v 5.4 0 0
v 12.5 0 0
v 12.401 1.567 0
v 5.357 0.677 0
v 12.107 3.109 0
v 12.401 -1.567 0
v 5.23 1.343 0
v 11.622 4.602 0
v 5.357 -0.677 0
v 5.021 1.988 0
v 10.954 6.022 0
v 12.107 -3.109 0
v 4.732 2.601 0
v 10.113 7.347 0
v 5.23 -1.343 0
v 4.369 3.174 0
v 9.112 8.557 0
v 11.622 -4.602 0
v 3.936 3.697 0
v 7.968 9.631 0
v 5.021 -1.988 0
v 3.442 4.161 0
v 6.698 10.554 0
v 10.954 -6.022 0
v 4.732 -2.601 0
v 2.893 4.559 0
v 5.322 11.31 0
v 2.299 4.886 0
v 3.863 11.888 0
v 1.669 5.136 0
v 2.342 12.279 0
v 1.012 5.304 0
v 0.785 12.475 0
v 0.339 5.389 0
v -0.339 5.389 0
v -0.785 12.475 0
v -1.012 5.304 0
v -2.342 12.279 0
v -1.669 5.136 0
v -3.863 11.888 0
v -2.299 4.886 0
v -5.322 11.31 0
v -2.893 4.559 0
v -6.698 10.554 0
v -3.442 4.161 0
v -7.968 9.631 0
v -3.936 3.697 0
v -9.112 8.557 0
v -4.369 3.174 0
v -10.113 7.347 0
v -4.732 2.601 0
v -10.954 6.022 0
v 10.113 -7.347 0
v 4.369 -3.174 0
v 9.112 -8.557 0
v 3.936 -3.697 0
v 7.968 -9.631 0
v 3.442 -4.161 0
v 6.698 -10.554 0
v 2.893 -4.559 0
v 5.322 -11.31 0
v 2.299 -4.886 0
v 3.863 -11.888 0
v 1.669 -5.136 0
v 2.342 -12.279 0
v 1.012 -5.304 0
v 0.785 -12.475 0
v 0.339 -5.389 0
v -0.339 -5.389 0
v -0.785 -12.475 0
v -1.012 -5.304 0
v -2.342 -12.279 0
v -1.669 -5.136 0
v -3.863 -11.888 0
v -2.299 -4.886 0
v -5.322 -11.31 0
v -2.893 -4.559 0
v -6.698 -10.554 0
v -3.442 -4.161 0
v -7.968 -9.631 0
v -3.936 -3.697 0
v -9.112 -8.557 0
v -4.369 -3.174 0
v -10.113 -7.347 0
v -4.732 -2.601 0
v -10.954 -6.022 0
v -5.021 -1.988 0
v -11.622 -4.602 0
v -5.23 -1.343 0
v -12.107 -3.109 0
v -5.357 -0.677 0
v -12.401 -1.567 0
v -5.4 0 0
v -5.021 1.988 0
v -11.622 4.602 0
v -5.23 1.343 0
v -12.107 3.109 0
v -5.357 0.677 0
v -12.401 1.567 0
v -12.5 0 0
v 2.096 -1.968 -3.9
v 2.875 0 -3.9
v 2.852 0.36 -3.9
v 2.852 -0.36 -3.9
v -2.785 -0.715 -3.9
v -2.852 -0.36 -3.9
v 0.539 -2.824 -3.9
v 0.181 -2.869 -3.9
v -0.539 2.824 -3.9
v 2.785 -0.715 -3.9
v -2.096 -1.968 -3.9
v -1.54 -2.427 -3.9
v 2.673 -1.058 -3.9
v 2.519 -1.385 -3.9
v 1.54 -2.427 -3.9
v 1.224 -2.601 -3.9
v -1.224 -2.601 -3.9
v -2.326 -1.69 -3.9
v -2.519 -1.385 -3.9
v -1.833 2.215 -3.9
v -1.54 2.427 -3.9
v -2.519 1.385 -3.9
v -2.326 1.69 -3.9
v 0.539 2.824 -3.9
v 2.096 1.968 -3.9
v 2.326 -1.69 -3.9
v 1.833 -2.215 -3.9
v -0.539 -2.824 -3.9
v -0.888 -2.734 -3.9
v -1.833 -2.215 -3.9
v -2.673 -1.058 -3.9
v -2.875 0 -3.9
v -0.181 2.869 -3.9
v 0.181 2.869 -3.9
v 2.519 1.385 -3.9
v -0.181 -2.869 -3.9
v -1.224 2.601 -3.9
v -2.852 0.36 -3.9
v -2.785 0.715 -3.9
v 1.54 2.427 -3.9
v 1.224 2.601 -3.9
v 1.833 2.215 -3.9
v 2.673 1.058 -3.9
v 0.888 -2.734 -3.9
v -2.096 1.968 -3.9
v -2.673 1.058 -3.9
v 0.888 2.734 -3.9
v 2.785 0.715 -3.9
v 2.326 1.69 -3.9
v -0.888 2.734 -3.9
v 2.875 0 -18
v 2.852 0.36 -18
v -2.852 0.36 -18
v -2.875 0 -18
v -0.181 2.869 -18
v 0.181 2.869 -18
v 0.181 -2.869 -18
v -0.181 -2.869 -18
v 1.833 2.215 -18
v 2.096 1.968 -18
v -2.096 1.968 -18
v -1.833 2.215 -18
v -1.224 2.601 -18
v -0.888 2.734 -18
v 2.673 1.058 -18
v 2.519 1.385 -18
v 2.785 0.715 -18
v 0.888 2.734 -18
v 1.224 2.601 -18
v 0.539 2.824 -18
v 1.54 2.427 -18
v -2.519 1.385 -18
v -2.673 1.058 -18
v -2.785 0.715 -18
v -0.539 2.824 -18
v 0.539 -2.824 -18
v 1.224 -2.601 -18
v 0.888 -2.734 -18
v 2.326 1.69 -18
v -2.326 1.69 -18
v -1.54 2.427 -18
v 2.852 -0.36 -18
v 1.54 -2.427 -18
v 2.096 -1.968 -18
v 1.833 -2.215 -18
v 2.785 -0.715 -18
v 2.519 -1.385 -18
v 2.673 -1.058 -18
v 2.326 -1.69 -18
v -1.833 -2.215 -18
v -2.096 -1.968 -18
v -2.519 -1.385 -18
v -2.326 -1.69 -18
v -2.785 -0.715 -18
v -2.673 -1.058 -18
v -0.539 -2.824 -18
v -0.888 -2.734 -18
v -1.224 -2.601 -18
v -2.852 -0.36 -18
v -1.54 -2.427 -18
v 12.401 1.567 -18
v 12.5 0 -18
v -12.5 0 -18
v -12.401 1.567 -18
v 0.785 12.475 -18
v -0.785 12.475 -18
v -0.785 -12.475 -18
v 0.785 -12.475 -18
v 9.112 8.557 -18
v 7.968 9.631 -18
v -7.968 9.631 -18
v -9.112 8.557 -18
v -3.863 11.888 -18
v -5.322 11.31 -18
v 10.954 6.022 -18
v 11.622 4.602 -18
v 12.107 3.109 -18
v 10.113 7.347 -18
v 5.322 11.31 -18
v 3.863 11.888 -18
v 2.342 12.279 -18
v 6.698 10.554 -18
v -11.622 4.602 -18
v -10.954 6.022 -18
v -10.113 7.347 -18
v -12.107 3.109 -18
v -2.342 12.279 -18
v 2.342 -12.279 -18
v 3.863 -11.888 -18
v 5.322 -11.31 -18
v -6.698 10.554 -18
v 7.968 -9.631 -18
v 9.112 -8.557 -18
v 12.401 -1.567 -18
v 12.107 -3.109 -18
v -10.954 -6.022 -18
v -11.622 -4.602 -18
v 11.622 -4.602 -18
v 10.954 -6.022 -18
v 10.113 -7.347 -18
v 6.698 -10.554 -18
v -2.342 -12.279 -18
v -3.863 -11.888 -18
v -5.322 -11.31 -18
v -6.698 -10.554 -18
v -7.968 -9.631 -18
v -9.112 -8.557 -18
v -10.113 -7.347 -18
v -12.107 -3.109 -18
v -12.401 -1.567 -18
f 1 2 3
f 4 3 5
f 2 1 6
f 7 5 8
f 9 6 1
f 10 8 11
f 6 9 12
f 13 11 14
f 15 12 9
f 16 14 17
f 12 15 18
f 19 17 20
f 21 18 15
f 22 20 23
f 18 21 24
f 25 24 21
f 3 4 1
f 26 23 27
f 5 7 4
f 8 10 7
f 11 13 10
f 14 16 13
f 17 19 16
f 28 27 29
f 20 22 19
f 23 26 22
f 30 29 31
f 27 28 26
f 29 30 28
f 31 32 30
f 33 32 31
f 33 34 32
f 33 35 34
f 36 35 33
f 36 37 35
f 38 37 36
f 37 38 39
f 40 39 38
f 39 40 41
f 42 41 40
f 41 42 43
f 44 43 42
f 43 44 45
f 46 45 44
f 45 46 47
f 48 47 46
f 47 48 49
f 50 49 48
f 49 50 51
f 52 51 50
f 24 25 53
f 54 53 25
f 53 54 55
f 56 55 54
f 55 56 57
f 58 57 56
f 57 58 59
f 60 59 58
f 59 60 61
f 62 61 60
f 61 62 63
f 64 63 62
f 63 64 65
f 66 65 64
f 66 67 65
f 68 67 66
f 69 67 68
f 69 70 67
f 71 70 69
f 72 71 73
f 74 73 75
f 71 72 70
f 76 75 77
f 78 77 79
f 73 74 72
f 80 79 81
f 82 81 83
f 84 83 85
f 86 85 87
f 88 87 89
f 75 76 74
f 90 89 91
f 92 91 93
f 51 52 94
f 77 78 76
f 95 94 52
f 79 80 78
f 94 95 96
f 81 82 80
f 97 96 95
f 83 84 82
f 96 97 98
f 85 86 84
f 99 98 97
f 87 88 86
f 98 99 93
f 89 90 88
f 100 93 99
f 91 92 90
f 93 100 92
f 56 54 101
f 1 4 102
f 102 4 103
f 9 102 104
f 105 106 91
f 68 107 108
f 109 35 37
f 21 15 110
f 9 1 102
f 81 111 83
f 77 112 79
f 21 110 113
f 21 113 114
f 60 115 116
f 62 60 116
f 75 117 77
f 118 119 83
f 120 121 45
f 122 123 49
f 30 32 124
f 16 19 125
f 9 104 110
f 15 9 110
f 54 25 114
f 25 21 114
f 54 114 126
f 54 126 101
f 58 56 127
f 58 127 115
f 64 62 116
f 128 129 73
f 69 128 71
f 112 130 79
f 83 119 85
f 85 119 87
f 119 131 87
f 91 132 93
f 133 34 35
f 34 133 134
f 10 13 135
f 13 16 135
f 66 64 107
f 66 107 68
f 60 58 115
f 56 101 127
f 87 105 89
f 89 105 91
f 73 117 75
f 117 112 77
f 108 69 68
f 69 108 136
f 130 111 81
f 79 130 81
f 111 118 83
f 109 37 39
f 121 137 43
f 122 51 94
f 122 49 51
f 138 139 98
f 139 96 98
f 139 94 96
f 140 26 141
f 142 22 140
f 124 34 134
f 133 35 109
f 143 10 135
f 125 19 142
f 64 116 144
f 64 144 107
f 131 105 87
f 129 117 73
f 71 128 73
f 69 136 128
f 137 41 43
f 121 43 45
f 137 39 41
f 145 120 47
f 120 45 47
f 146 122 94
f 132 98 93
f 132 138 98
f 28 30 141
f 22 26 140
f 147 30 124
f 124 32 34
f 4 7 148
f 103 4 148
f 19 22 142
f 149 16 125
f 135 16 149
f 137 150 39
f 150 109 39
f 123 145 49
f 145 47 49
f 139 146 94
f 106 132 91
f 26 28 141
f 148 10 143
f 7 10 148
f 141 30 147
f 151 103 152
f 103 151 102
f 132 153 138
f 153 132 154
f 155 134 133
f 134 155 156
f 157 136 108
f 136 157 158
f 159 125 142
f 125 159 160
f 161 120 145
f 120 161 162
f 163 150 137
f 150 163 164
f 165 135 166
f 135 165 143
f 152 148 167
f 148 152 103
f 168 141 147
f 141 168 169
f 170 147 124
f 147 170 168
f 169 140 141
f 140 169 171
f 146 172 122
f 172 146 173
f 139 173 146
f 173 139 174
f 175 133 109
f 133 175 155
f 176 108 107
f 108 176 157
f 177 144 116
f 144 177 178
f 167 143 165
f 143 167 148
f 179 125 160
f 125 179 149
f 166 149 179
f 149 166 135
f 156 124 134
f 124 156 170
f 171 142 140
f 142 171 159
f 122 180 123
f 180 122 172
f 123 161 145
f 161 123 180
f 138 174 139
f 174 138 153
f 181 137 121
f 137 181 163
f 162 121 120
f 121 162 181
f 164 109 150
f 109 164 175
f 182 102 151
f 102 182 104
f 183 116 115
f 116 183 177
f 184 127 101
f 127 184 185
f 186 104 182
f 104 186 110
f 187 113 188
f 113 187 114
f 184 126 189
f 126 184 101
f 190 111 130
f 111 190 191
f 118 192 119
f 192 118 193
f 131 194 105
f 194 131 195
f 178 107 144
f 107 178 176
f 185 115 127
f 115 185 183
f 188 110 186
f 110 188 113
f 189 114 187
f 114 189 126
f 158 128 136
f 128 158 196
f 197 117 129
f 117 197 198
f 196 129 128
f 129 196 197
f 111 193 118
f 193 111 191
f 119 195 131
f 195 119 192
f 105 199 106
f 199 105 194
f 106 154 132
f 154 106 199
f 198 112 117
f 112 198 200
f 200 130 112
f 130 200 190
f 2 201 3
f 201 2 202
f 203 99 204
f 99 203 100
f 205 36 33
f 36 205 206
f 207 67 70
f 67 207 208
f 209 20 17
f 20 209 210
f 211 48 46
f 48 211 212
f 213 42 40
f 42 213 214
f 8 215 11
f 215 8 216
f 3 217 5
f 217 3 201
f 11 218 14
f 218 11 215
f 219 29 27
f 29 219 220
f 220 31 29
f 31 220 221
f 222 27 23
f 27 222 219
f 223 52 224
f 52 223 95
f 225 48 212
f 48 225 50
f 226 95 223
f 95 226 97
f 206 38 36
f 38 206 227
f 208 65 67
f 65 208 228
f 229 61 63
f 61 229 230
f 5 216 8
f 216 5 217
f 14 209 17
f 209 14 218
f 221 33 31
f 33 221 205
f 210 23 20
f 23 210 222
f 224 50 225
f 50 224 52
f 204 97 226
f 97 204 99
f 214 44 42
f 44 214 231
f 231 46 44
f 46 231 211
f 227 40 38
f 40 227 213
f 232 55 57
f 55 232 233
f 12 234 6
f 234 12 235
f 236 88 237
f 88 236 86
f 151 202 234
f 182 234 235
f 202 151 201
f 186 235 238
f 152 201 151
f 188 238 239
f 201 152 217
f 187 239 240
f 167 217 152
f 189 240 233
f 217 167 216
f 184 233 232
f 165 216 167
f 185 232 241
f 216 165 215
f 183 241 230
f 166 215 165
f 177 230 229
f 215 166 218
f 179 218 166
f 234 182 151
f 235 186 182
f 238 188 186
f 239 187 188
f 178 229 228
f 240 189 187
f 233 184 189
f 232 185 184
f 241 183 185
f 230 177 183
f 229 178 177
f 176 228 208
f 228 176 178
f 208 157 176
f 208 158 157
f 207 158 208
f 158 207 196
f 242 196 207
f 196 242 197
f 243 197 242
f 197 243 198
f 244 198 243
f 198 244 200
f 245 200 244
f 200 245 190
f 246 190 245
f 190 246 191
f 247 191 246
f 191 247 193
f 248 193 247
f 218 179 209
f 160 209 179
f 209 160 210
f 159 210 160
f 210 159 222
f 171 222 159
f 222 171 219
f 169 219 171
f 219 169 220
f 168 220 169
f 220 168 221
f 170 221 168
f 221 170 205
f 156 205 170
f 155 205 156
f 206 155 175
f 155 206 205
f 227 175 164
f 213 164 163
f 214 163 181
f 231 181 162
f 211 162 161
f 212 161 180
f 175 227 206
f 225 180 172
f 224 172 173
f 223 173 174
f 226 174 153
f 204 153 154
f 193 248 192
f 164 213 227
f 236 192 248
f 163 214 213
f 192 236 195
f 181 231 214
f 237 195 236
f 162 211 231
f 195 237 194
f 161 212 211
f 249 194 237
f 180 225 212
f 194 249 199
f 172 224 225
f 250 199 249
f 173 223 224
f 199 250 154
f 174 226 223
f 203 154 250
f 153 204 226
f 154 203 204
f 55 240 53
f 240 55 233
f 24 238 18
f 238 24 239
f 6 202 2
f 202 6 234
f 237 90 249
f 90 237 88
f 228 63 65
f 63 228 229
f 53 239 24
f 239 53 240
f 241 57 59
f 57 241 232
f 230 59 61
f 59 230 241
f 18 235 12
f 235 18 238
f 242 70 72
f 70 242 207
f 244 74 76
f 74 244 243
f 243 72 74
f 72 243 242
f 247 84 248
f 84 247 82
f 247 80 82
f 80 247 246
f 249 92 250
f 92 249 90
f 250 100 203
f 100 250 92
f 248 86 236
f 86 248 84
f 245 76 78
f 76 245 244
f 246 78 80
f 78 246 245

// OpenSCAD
$fn = 50;

difference() {
	union() {
		translate(v = [0, 0, -18.0]) {
			cylinder(h = 18, r = 12.5);
		}
	}
	union() {
		translate(v = [0, 0, 0]) {
			rotate(a = [0, 0, 0]) {
				difference() {
					union() {
						translate(v = [0, 0, -21.0]) {
							cylinder(h = 21, r = 2.6);
						}
						translate(v = [0, 0, -3.9]) {
							cylinder(h = 3.9, r1 = 2.875, r2 = 5.4);
						}
						translate(v = [0, 0, -21.0]) {
							cylinder(h = 21, r = 2.875);
						}
						translate(v = [0, 0, -21.0]) {
							cylinder(h = 21, r = 2.6);
						}
					}
					union();
				}
			}
		}
	}
}
